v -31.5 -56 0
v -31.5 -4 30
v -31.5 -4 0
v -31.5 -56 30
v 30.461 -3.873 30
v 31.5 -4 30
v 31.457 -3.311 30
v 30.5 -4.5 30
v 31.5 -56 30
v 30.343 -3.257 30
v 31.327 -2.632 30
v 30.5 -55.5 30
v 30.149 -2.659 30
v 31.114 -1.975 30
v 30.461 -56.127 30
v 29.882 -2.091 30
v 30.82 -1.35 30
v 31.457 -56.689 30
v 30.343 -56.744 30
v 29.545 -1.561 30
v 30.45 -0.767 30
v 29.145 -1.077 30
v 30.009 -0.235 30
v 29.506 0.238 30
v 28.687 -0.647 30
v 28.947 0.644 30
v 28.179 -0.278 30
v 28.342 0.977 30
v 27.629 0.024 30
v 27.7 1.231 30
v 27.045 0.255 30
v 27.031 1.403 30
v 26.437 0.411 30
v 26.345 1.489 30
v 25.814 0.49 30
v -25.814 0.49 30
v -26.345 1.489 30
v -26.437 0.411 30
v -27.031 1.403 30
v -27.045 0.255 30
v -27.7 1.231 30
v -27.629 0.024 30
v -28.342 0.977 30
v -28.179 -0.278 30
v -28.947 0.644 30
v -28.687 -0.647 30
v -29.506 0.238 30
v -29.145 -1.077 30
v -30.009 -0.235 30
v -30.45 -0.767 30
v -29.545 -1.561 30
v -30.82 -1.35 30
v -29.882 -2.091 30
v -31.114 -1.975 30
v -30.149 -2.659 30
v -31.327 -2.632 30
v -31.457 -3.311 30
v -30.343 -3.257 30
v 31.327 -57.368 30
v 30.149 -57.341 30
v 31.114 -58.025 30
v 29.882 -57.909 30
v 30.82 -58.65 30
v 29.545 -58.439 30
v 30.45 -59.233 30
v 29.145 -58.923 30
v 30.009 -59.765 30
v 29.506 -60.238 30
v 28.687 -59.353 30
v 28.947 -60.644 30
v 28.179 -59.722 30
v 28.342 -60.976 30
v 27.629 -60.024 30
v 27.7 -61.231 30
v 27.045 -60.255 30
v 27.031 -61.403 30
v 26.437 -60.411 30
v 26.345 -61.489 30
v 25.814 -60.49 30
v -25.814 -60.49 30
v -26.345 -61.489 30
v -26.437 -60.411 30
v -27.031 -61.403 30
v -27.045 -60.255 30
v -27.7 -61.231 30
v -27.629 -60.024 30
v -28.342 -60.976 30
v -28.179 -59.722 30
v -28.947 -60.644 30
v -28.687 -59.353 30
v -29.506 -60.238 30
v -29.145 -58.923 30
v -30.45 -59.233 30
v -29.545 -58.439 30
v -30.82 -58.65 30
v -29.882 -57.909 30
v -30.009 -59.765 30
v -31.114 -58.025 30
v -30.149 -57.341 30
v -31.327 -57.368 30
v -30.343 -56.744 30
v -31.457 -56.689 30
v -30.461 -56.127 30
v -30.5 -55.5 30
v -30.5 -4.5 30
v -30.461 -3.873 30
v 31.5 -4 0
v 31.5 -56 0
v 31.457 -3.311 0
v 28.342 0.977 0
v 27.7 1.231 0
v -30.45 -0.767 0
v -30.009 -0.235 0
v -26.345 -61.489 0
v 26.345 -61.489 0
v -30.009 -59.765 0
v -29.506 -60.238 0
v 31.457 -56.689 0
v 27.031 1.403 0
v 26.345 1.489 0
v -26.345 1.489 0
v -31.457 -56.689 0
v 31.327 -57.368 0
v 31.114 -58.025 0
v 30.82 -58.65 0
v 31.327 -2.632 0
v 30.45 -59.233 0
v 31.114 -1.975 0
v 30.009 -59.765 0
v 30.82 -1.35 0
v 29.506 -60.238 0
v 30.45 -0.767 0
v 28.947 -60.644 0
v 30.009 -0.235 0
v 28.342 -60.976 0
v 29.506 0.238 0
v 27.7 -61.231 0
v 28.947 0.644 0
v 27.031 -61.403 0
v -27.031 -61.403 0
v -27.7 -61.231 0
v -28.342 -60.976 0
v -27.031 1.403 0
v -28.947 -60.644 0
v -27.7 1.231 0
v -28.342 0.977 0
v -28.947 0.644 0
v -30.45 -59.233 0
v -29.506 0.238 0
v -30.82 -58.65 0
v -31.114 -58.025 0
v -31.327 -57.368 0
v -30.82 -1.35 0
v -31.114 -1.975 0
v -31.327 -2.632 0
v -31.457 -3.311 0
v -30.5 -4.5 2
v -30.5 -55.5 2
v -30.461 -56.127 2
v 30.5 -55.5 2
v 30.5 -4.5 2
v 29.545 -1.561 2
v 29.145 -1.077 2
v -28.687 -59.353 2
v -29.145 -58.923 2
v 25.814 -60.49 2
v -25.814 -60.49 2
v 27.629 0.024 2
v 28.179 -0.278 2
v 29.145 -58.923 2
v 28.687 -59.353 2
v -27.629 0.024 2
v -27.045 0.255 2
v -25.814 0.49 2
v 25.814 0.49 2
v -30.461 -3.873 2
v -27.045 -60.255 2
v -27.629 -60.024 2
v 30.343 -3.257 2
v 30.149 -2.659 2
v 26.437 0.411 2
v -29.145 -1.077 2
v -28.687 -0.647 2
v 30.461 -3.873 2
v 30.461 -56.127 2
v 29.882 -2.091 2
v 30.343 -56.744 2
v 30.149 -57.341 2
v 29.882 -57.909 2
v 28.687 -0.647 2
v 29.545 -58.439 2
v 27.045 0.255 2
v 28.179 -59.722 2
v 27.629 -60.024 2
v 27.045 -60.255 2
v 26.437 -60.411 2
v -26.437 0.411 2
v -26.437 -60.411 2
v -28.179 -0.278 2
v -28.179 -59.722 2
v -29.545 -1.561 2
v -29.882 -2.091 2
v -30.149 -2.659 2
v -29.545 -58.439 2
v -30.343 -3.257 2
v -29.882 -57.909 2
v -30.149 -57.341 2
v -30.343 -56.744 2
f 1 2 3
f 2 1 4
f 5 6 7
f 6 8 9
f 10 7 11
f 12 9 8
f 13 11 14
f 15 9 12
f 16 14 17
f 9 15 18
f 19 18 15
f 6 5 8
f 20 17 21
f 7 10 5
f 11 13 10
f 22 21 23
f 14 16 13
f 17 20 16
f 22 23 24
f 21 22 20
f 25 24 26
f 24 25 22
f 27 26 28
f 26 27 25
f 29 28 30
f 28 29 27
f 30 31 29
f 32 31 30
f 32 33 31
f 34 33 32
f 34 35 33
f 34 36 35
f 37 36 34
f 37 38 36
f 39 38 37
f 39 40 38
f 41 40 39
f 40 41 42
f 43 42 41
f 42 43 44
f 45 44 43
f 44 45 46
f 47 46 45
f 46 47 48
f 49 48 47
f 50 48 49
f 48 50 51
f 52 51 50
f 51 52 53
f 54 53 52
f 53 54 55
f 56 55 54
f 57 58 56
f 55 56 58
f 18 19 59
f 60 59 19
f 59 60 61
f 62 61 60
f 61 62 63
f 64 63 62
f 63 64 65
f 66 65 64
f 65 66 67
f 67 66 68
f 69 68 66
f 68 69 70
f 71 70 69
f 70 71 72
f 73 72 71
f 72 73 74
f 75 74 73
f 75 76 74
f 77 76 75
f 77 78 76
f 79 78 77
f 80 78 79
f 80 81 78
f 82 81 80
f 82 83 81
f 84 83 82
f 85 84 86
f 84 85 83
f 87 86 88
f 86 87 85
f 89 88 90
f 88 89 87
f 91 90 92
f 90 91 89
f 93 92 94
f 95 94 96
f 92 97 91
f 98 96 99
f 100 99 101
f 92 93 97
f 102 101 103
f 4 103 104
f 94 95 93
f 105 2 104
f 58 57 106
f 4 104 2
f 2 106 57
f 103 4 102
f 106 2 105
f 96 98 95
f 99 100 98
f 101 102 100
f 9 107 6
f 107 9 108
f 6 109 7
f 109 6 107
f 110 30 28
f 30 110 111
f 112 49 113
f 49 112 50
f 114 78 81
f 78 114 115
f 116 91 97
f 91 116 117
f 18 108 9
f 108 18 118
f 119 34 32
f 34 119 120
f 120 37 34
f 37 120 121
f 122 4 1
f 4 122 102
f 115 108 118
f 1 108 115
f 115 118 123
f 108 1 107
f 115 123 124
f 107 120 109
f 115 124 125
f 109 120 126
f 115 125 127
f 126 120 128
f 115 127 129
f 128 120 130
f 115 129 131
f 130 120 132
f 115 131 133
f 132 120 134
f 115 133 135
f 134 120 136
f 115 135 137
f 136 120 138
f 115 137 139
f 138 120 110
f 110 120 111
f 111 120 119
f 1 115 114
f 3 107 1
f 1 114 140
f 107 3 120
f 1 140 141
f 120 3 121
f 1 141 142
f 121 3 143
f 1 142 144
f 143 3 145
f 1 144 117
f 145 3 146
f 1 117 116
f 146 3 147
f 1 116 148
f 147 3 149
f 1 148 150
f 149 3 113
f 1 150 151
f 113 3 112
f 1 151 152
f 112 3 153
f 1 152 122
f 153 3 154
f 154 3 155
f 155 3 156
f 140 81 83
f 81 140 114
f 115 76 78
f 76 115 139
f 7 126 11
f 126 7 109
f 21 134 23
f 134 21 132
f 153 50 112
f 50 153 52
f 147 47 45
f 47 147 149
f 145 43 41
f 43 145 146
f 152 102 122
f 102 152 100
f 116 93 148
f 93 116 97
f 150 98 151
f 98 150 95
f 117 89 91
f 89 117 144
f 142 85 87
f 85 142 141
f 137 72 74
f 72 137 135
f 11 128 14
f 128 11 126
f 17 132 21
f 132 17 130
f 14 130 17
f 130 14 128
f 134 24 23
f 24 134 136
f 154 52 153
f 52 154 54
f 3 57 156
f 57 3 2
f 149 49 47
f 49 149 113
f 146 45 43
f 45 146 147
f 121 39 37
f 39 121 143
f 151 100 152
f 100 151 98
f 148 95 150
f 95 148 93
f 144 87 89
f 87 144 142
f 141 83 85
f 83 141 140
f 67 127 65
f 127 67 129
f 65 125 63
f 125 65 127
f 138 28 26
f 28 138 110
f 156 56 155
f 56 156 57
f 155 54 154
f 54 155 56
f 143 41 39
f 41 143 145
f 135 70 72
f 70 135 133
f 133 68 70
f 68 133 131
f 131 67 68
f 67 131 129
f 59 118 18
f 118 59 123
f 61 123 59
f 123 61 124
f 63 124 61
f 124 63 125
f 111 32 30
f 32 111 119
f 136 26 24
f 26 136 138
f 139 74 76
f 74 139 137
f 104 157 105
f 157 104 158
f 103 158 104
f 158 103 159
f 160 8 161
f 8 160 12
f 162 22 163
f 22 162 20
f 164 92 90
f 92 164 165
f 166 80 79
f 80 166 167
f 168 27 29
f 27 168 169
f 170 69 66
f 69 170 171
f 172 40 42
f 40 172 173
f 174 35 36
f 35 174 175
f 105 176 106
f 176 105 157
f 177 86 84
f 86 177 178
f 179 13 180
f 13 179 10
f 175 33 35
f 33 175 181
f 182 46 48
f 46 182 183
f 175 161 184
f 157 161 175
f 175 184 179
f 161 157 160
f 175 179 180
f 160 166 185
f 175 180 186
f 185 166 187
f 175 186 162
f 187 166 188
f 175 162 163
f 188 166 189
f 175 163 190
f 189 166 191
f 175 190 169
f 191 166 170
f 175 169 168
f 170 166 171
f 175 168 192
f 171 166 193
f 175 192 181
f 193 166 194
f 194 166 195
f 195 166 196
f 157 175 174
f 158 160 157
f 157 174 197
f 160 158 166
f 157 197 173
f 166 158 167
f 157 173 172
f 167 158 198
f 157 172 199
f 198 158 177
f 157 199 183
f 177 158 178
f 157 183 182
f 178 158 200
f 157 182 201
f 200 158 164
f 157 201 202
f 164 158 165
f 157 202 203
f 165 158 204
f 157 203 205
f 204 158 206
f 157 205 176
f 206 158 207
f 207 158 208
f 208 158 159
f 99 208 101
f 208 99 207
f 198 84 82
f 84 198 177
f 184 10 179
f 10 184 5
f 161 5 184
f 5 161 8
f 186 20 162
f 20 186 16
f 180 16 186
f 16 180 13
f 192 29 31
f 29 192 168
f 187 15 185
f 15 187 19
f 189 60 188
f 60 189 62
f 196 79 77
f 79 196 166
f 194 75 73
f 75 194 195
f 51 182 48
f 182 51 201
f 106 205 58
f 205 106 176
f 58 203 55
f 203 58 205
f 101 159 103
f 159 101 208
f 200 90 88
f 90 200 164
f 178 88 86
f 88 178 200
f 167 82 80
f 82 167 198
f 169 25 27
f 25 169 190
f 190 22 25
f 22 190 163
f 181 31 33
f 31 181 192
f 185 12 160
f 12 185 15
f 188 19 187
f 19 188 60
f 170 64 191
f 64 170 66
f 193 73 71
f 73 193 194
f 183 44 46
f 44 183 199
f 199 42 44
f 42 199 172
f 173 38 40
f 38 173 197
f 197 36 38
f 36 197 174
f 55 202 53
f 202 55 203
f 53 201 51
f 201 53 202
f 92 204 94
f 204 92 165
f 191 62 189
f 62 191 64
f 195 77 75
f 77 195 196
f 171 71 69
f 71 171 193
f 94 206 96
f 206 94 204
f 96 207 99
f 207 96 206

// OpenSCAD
$fn = 50;


difference() {
	union() {
		translate(v = [0, -30.0000000000, 0]) {
			hull() {
				translate(v = [-26.0000000000, 26.0000000000, 0]) {
					cylinder(h = 30, r = 5.5000000000);
				}
				translate(v = [26.0000000000, 26.0000000000, 0]) {
					cylinder(h = 30, r = 5.5000000000);
				}
				translate(v = [-26.0000000000, -26.0000000000, 0]) {
					cylinder(h = 30, r = 5.5000000000);
				}
				translate(v = [26.0000000000, -26.0000000000, 0]) {
					cylinder(h = 30, r = 5.5000000000);
				}
			}
		}
	}
	union() {
		translate(v = [0, -30.0000000000, 2]) {
			hull() {
				translate(v = [-25.5000000000, 25.5000000000, 0]) {
					cylinder(h = 60, r = 5);
				}
				translate(v = [25.5000000000, 25.5000000000, 0]) {
					cylinder(h = 60, r = 5);
				}
				translate(v = [-25.5000000000, -25.5000000000, 0]) {
					cylinder(h = 60, r = 5);
				}
				translate(v = [25.5000000000, -25.5000000000, 0]) {
					cylinder(h = 60, r = 5);
				}
			}
		}
	}
}
